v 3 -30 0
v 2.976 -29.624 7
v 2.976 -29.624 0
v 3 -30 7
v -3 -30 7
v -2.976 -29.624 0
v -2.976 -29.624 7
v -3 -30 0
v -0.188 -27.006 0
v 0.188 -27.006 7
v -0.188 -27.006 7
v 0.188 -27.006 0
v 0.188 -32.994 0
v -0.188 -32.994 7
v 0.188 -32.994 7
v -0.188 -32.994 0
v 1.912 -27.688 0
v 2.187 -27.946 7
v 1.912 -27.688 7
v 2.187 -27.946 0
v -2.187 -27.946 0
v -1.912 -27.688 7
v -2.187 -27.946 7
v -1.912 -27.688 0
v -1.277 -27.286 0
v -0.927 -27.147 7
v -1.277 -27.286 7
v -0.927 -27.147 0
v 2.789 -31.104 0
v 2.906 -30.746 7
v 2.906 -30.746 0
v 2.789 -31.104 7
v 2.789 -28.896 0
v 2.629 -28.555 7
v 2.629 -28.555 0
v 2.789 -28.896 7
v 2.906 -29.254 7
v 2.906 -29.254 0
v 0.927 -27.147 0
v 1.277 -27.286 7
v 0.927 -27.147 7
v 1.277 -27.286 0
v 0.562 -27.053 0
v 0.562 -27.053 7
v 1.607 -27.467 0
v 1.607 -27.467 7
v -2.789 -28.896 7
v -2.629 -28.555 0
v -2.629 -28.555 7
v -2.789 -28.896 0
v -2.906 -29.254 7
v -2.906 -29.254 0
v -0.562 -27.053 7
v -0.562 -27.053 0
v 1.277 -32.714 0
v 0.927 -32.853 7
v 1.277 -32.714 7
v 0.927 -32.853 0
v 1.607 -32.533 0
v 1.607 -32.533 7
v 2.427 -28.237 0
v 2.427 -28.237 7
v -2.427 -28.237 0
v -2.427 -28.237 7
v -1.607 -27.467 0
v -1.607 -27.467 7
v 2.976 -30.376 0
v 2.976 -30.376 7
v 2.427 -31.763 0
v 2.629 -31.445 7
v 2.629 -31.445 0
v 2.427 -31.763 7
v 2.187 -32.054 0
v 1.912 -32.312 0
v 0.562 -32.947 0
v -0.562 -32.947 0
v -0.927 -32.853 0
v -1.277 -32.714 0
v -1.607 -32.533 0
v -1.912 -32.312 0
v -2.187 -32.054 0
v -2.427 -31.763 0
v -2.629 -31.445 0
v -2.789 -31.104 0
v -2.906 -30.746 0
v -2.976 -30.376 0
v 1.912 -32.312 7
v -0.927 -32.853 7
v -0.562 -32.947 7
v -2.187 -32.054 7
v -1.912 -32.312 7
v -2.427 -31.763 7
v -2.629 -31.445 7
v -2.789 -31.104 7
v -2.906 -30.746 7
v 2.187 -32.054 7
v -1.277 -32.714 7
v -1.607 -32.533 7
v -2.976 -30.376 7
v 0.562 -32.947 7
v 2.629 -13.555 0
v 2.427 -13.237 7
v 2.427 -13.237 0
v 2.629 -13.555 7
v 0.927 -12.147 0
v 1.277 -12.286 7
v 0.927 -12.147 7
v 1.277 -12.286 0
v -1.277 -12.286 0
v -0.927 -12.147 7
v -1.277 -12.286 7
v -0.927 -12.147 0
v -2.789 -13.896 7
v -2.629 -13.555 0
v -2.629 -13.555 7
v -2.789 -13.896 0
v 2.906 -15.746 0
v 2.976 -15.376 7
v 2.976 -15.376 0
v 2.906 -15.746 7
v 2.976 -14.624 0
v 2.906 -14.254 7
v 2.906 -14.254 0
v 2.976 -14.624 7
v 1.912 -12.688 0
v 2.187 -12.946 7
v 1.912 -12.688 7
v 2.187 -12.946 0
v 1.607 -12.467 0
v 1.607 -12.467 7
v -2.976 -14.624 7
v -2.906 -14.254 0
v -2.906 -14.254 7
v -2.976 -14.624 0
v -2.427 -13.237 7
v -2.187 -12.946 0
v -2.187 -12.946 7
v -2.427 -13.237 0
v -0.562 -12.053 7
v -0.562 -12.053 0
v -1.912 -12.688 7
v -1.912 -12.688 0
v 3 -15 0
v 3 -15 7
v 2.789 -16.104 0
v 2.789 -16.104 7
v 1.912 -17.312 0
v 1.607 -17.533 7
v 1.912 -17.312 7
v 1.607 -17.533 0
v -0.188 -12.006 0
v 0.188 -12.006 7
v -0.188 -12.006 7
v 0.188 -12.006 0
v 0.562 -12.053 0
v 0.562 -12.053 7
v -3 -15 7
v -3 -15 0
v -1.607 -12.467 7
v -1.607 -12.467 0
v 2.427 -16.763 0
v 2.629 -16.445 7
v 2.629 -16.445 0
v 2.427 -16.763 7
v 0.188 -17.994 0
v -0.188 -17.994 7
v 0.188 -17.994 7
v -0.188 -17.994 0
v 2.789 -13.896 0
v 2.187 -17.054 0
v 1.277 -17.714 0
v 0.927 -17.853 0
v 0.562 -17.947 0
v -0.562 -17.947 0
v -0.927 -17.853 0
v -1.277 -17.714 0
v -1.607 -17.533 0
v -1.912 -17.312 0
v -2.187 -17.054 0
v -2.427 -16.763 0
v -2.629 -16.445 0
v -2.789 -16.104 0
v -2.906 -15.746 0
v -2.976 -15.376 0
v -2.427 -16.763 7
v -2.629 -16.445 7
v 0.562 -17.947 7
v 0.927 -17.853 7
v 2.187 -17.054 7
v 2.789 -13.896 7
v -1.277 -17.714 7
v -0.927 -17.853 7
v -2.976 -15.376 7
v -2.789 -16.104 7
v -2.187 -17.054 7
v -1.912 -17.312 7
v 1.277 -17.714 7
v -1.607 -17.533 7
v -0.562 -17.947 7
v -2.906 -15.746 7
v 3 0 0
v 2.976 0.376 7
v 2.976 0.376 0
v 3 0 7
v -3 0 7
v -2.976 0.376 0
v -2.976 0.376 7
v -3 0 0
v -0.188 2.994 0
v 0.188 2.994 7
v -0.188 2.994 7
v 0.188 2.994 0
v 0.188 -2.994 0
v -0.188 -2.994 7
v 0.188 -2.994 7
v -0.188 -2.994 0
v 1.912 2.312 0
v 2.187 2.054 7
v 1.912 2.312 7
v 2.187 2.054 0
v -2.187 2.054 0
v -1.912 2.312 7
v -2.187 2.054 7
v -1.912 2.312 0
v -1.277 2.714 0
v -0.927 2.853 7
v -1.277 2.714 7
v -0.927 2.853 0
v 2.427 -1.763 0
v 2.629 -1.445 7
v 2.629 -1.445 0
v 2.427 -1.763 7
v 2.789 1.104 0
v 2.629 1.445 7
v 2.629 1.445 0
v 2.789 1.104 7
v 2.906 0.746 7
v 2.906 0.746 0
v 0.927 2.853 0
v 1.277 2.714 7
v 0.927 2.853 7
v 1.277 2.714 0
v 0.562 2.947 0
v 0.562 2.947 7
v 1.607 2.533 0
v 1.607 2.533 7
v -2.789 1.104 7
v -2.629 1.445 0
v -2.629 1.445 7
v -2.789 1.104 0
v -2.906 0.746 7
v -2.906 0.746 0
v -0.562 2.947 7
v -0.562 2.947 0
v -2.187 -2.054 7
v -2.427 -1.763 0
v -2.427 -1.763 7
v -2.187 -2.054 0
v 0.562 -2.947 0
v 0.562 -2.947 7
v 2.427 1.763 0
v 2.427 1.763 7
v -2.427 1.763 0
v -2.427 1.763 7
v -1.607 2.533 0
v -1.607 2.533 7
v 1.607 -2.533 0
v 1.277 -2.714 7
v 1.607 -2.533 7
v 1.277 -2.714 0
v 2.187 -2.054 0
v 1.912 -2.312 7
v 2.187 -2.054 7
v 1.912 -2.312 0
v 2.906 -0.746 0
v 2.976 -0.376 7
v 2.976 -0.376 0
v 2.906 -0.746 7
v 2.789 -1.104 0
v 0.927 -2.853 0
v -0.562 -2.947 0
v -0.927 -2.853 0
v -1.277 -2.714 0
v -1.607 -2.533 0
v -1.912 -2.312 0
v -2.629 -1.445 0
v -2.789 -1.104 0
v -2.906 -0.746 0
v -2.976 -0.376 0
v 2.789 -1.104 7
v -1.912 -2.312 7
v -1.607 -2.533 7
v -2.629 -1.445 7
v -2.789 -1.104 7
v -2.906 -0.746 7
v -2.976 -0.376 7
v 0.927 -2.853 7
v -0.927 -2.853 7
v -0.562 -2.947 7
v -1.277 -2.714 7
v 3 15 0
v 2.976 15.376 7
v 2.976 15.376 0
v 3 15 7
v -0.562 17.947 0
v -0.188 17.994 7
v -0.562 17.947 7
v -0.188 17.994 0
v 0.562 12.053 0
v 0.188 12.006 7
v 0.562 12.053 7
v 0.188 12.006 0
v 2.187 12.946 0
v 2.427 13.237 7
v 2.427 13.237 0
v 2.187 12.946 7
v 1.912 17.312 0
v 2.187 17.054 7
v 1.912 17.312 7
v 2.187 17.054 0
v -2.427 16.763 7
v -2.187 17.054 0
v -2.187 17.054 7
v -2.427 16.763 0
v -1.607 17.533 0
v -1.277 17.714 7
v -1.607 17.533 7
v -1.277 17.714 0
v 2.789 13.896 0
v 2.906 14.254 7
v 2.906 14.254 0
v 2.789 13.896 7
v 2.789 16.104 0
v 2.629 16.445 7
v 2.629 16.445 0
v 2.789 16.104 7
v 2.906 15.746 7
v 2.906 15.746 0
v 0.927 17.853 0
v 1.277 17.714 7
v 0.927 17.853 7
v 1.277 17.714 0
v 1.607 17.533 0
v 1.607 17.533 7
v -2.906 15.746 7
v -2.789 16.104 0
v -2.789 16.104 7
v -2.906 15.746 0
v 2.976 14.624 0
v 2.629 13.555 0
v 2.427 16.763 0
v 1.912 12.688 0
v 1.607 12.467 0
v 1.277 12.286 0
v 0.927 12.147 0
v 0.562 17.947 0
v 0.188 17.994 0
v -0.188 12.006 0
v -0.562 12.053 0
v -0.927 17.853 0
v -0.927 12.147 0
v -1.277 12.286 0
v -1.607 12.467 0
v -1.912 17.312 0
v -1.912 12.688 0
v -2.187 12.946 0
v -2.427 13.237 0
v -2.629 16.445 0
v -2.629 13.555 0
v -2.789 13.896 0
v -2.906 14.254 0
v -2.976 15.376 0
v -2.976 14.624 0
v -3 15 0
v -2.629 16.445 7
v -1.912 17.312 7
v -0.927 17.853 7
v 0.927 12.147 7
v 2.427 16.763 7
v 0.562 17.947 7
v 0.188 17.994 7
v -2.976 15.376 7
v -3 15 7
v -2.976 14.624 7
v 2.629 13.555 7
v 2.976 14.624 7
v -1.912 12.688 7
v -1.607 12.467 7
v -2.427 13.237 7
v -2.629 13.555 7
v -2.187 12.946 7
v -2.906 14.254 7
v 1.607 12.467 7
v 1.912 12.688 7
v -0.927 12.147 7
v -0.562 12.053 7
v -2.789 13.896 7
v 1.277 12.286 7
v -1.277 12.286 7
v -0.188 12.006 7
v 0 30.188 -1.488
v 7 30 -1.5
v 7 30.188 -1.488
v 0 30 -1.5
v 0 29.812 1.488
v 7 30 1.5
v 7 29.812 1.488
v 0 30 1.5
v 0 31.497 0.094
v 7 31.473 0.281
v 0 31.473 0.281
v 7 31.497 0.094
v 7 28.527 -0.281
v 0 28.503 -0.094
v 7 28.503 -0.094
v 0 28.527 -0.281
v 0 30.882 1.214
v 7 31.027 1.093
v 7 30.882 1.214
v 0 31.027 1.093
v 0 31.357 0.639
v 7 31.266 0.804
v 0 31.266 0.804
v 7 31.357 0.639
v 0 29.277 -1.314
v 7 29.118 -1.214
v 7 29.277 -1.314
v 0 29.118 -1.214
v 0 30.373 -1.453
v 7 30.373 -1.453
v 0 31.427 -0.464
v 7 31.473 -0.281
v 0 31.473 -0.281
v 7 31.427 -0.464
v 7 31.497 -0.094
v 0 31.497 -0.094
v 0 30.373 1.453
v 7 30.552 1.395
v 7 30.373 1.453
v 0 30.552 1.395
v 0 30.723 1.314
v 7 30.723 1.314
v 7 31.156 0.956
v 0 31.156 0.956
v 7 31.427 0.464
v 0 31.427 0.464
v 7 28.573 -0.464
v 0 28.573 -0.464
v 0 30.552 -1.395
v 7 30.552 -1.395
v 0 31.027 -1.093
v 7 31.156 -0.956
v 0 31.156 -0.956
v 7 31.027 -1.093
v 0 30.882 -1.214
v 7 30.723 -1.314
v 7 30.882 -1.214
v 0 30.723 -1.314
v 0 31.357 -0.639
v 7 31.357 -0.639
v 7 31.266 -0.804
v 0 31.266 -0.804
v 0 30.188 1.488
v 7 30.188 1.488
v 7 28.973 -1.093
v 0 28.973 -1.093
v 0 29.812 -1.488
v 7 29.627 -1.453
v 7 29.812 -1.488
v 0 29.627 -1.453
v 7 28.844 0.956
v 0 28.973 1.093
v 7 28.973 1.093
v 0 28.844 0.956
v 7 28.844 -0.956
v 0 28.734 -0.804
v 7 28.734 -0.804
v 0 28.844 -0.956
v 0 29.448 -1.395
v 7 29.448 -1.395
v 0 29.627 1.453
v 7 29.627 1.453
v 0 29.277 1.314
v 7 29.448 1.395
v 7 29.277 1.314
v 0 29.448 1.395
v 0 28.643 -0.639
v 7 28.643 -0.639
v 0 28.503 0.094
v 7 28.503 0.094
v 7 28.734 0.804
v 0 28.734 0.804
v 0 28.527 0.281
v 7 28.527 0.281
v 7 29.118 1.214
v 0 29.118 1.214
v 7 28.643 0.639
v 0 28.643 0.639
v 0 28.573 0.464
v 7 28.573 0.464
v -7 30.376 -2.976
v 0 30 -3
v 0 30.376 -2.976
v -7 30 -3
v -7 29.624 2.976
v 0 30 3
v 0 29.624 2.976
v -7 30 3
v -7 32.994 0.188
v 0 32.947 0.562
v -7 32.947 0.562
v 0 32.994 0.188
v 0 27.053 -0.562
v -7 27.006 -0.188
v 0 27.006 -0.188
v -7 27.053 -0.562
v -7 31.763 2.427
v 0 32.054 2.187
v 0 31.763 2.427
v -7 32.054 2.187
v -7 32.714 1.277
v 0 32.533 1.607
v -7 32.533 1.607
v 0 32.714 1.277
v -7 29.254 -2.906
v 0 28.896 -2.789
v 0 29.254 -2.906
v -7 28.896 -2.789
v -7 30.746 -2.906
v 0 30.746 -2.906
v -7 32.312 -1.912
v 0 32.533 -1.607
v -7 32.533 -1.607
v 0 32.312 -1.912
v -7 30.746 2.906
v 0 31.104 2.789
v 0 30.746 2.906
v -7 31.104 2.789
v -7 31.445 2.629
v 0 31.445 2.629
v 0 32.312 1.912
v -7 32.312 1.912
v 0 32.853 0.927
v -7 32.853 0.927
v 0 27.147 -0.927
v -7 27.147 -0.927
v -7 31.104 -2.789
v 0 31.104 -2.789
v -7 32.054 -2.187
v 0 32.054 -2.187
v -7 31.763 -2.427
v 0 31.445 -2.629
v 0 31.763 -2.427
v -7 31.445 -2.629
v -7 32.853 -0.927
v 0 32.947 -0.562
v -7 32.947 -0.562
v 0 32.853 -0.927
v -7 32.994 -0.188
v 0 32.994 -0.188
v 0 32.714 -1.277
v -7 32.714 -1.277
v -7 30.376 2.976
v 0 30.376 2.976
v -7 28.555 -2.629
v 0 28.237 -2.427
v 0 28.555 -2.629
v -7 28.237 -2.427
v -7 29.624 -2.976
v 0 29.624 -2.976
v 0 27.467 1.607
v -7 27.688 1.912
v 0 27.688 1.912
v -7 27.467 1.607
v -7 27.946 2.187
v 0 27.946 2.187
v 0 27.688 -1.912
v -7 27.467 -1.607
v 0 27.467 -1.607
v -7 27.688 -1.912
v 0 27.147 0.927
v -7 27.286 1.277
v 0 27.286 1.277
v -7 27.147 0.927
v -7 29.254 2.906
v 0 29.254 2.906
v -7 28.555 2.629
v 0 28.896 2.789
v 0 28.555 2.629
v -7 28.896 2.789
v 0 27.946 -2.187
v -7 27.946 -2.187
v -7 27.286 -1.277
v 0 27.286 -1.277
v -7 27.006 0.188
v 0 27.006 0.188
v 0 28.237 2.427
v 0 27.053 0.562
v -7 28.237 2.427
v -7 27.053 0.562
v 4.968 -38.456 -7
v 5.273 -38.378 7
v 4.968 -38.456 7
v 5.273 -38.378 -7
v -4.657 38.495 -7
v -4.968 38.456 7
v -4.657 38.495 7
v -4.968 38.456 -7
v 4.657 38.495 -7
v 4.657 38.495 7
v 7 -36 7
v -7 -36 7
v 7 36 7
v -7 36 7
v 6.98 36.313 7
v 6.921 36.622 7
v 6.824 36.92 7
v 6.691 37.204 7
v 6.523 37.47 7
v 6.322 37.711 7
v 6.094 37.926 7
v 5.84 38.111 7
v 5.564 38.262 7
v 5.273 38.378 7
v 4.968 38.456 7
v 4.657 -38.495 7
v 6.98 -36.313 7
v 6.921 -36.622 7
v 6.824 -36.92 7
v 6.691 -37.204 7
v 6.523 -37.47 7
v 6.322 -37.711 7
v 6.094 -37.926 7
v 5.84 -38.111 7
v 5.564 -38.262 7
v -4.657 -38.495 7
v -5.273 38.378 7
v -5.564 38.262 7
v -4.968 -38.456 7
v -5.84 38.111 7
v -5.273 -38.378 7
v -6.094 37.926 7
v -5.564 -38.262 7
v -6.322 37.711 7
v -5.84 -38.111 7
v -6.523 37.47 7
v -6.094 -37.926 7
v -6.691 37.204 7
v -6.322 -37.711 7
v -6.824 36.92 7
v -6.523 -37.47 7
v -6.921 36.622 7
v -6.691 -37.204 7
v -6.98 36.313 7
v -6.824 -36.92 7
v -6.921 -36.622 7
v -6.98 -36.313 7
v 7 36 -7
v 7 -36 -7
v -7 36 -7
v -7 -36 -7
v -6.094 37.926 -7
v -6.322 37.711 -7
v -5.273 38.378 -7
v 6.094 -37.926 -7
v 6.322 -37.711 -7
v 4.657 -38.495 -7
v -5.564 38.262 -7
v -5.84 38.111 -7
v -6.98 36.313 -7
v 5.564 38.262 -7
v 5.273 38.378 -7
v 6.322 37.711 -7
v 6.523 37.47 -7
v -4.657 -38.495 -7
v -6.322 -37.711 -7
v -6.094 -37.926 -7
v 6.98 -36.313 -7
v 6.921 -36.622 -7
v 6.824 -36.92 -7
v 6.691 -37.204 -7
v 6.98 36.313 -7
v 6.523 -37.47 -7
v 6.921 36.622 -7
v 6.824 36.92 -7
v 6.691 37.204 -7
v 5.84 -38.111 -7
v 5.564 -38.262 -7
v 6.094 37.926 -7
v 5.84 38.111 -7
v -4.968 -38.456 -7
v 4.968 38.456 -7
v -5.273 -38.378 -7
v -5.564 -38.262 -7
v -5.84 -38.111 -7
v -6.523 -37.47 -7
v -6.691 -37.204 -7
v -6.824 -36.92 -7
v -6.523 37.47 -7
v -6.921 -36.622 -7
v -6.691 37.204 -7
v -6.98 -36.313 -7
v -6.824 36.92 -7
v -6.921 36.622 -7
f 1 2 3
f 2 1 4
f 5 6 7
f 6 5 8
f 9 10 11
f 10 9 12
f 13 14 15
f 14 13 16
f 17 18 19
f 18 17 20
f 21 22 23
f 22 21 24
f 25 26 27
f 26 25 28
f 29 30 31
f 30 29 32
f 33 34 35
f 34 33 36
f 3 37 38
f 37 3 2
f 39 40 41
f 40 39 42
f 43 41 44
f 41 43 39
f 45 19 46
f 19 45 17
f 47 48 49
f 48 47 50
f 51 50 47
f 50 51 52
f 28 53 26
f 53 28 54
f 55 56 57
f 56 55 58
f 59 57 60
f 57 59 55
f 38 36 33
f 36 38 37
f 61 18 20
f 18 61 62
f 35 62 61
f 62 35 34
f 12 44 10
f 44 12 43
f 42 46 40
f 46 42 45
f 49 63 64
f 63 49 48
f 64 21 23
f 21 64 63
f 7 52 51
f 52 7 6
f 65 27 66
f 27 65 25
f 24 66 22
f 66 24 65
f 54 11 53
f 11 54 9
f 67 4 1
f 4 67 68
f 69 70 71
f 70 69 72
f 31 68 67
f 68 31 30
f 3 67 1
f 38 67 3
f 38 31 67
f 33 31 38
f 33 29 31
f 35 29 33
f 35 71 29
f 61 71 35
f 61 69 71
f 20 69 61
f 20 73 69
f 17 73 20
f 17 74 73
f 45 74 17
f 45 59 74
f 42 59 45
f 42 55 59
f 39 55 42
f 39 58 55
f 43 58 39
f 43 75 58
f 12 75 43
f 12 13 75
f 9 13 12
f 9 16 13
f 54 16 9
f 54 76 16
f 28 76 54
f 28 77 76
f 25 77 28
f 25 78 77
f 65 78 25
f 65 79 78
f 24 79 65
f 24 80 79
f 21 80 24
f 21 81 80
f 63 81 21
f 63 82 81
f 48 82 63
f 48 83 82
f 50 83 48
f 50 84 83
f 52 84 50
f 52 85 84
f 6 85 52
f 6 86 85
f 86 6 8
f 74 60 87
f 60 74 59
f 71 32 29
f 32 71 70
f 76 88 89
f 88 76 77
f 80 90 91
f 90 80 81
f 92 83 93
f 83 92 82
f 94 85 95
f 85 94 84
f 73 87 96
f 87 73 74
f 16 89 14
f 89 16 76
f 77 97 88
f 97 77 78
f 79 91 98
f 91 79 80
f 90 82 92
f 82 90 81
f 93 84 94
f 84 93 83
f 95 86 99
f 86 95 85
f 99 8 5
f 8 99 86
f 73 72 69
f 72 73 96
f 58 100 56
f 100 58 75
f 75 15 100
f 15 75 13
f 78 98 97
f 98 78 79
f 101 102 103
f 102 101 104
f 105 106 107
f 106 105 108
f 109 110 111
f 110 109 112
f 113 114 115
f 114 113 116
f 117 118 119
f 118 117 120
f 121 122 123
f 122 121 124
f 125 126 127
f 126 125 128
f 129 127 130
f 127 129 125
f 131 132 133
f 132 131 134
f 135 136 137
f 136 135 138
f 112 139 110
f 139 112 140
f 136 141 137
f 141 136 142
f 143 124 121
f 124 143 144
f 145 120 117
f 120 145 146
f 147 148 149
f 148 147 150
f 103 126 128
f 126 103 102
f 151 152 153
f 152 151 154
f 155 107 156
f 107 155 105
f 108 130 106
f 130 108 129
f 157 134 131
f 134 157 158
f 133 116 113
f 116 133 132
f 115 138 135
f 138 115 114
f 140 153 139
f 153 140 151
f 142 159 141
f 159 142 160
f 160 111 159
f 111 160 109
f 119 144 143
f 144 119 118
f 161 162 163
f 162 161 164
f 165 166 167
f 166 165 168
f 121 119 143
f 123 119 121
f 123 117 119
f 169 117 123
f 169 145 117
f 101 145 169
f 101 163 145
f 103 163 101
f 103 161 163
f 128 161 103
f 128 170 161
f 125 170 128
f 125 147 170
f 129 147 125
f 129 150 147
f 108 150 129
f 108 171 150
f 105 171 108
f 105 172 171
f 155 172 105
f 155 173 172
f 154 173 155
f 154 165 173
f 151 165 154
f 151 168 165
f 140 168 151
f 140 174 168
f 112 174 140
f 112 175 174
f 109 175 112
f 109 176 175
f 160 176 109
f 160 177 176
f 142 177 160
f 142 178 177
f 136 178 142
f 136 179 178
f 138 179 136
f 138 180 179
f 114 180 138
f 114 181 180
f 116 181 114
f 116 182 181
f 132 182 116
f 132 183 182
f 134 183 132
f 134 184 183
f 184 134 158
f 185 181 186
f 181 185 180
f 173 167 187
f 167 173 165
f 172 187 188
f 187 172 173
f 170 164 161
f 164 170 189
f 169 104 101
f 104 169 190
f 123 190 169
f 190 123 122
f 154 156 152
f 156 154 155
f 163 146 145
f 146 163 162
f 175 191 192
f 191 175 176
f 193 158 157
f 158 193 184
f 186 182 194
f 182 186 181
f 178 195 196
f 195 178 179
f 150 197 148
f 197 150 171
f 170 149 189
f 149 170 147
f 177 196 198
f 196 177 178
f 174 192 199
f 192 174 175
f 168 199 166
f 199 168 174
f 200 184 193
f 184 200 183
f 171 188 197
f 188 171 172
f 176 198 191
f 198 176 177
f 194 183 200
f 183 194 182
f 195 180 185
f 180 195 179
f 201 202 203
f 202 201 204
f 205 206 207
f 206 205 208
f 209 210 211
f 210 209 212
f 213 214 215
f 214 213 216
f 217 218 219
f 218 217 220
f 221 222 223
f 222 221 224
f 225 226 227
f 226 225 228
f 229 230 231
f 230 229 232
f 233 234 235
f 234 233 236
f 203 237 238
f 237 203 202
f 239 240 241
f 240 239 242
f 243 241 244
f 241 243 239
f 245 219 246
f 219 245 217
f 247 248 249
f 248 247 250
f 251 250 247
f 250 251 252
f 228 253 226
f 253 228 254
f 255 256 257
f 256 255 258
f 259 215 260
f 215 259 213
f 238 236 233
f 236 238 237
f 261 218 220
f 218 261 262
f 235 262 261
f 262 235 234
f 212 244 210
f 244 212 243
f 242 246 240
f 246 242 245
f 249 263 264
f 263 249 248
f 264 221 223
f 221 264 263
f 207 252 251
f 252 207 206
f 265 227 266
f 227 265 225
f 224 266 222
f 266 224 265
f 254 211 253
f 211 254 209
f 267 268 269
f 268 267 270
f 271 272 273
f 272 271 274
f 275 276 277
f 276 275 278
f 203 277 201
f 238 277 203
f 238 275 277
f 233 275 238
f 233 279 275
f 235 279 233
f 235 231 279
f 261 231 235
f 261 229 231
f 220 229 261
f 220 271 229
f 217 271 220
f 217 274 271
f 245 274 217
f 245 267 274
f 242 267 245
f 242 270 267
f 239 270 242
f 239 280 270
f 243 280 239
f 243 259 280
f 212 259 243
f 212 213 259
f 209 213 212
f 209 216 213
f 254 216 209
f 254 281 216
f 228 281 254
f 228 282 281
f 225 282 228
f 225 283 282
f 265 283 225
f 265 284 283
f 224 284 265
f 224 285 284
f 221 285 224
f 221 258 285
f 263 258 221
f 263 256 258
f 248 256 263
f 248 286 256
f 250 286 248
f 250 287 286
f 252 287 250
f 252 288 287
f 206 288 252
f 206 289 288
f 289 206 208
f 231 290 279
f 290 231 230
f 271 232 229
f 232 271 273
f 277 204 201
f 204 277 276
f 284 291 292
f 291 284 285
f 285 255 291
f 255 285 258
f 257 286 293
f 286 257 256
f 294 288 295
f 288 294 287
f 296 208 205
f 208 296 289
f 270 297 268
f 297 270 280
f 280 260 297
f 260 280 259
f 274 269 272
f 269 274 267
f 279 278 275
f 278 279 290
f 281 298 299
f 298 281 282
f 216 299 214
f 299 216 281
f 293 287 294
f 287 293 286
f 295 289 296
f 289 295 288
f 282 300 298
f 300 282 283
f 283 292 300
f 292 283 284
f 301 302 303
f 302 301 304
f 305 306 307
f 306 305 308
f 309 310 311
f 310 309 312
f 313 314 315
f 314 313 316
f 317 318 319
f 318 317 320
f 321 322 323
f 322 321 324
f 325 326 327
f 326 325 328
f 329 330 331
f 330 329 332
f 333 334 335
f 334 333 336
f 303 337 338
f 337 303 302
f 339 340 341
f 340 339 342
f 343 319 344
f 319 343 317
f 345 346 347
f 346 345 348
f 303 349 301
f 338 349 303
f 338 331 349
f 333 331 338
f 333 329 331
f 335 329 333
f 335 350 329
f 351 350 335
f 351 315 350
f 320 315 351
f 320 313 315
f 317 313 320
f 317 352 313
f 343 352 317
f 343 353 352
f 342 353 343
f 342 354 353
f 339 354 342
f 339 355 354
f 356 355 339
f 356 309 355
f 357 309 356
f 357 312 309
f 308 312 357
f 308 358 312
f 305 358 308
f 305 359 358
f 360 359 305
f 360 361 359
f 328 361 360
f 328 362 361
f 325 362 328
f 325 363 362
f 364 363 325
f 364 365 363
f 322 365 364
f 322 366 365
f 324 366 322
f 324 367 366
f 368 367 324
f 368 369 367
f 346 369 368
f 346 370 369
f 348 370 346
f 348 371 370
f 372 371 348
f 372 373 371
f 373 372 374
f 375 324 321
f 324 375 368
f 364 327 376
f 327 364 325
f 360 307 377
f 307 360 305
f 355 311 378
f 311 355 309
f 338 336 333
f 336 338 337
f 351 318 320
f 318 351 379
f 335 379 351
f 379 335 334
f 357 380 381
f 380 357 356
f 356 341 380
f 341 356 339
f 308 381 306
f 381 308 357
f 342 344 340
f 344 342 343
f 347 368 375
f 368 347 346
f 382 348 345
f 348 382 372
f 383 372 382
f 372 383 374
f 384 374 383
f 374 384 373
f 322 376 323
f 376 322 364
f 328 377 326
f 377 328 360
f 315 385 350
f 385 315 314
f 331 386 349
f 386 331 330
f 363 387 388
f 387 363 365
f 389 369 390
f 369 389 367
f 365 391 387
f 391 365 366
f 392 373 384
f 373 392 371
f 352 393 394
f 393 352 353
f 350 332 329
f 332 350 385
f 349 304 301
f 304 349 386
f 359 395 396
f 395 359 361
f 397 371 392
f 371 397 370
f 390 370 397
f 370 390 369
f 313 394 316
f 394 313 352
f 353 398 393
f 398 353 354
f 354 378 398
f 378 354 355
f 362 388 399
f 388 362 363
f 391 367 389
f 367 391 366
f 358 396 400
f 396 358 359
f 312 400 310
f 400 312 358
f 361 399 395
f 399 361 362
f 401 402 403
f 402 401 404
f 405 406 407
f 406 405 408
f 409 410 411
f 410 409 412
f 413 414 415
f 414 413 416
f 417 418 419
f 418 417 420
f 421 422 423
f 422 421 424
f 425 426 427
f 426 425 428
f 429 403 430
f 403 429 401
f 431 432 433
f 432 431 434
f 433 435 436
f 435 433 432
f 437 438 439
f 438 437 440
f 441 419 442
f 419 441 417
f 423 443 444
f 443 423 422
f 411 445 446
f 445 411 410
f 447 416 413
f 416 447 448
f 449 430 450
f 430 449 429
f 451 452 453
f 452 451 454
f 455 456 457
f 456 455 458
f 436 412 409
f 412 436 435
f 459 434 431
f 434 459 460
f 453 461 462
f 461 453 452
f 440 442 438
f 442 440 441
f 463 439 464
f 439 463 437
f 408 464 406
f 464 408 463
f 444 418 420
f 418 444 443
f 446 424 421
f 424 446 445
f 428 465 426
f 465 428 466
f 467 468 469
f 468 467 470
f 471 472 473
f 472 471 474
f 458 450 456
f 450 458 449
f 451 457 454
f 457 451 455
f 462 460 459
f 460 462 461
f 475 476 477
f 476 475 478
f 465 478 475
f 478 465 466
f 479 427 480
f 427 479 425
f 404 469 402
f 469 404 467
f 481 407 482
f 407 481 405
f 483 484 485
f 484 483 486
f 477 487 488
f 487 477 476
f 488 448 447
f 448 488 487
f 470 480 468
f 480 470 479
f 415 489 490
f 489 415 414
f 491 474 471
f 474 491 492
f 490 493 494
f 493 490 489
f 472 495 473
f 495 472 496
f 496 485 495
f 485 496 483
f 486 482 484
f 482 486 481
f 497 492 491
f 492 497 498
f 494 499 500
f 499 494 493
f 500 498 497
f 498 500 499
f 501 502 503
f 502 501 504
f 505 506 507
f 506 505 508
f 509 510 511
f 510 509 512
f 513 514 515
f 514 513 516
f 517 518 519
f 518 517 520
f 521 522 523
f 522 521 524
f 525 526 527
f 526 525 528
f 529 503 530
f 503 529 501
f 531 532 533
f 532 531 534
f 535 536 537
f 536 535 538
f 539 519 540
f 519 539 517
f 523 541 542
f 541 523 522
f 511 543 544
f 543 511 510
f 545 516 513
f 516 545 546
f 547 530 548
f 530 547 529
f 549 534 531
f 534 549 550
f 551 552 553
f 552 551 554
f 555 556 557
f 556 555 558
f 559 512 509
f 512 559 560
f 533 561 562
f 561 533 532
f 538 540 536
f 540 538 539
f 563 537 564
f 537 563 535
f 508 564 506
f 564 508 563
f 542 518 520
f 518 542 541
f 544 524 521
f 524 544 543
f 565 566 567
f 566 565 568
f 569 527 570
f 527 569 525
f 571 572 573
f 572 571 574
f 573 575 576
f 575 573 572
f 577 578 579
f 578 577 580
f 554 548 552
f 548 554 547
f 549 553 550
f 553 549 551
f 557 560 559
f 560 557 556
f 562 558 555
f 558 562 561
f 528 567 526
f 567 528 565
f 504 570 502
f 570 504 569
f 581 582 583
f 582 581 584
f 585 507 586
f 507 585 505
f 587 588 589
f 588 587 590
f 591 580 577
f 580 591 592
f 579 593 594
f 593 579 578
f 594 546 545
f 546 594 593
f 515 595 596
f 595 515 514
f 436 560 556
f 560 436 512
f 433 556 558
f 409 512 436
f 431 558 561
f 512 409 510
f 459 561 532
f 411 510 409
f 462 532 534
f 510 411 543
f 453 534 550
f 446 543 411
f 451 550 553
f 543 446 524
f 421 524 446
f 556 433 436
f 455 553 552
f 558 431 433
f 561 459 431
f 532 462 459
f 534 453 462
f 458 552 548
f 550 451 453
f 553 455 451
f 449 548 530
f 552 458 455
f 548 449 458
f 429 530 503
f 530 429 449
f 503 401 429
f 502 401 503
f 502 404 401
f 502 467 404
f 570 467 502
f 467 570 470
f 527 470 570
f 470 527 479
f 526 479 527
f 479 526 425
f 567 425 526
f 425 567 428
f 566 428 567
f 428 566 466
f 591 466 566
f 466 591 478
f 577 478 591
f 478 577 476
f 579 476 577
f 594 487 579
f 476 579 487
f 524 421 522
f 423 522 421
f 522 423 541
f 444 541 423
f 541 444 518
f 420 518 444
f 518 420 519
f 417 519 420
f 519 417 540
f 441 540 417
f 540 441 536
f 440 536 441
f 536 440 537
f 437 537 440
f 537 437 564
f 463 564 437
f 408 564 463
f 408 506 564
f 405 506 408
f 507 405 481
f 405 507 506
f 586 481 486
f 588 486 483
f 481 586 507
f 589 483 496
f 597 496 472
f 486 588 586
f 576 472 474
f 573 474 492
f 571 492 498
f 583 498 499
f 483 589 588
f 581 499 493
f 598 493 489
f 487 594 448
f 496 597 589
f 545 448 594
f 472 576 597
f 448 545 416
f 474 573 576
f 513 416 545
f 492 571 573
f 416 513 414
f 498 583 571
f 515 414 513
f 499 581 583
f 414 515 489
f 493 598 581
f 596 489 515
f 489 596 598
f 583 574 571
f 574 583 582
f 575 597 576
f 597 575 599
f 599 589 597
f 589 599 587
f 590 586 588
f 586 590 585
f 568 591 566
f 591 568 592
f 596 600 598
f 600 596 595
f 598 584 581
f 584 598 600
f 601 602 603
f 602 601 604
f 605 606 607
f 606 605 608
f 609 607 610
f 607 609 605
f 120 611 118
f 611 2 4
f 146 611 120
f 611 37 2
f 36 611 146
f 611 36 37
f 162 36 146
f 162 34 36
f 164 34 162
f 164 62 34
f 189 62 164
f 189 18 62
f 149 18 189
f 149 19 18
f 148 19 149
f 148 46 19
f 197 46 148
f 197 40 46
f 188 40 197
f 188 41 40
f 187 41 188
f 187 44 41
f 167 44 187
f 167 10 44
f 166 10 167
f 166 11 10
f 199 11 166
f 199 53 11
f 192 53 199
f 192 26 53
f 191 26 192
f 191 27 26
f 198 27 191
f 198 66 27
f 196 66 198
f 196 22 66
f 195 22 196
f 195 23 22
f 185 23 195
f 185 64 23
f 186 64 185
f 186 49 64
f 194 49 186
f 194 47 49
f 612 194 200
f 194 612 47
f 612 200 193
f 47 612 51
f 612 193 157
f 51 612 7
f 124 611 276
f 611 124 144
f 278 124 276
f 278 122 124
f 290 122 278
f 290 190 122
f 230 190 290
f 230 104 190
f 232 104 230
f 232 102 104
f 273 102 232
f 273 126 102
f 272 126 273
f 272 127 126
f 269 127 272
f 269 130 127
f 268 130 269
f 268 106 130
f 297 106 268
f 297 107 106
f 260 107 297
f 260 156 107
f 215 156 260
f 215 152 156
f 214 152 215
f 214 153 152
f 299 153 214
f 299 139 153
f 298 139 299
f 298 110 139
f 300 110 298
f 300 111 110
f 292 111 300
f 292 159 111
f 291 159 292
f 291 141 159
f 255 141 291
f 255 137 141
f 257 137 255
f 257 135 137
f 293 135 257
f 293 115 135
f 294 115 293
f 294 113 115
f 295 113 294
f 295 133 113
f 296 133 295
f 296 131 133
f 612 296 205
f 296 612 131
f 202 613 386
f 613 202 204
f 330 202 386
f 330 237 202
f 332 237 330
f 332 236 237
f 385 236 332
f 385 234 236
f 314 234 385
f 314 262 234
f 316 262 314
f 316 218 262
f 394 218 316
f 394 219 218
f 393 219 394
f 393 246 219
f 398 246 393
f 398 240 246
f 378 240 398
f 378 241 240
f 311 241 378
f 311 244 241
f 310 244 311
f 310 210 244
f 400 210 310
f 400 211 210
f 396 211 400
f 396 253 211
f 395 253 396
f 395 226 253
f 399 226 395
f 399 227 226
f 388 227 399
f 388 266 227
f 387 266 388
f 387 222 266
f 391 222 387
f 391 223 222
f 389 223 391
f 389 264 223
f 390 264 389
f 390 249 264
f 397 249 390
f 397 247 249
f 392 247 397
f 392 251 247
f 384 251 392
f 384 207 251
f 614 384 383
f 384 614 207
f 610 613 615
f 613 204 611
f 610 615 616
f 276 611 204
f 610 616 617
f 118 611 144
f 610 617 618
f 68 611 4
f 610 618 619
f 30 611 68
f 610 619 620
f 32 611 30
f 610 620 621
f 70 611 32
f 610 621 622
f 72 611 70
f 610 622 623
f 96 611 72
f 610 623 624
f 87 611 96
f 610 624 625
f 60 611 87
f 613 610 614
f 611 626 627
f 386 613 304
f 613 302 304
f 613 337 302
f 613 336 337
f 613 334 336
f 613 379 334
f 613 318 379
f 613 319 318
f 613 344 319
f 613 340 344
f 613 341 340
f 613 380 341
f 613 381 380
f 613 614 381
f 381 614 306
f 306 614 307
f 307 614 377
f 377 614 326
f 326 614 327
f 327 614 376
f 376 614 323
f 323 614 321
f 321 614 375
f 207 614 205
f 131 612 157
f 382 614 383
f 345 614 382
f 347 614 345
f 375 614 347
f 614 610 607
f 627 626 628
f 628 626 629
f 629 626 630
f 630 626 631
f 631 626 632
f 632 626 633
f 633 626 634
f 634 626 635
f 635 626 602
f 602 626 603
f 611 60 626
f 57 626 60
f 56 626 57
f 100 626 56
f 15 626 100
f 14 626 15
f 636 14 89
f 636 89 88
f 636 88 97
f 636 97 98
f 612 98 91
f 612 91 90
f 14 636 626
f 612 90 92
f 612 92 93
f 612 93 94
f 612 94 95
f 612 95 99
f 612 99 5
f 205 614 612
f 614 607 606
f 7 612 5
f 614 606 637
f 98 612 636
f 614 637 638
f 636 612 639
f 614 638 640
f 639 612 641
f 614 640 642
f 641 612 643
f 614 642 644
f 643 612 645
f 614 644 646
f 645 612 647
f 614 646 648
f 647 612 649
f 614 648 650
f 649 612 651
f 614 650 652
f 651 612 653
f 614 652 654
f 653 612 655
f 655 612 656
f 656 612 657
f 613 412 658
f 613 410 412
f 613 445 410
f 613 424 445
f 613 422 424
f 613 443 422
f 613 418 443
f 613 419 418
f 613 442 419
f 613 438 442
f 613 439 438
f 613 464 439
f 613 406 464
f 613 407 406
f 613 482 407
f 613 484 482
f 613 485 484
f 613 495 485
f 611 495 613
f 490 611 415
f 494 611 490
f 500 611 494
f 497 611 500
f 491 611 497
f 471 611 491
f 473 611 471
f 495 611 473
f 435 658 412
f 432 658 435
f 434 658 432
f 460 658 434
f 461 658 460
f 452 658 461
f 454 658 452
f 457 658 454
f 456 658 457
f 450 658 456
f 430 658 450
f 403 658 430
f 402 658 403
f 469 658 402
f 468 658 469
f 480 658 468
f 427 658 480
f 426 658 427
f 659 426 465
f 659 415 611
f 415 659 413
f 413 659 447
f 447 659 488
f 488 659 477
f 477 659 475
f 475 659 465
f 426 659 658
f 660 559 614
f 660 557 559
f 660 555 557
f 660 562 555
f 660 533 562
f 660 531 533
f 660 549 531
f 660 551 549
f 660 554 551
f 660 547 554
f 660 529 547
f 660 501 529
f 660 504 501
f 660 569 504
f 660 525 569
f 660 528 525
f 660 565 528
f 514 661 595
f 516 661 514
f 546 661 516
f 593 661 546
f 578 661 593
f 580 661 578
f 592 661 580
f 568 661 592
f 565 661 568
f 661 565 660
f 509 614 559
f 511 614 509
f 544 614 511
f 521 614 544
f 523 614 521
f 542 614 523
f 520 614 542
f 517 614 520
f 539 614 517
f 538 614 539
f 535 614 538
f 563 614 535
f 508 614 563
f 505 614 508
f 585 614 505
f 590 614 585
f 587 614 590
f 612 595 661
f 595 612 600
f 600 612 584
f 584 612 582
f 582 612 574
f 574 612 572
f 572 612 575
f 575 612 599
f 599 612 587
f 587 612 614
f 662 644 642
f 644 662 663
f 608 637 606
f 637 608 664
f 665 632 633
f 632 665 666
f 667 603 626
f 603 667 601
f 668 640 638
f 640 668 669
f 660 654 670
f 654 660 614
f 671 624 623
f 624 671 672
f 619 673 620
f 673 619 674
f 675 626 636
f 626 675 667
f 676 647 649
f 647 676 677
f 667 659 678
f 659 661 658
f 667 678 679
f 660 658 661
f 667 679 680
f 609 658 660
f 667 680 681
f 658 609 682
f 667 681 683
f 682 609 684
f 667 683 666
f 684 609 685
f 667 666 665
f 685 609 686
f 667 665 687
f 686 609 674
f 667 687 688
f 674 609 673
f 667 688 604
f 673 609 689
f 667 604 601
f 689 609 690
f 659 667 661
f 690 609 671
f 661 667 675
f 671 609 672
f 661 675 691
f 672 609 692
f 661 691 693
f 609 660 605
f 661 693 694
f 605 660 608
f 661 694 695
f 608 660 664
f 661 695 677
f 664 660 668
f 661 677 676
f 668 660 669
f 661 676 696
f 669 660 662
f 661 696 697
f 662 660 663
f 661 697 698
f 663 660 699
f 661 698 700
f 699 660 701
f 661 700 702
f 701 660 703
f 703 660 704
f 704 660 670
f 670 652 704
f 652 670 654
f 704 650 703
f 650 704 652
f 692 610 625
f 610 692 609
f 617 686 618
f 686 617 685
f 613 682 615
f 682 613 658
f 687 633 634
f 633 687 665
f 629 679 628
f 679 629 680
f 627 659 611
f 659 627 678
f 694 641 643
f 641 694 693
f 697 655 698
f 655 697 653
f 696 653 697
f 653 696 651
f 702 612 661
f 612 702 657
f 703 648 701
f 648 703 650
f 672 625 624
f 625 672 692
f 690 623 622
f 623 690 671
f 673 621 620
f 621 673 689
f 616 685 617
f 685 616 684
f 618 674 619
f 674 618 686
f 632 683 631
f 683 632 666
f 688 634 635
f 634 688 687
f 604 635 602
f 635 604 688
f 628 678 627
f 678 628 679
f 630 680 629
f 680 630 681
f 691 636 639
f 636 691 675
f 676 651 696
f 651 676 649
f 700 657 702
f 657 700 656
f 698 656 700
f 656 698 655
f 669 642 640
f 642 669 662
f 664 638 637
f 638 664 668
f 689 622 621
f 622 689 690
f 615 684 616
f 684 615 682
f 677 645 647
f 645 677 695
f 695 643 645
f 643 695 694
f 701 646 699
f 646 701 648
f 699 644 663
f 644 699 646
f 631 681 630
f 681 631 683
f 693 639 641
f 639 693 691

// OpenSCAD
$fn = 50;


difference() {
	union() {
		translate(v = [0, 0, -7.0000000000]) {
			hull() {
				translate(v = [-4.5000000000, 36.0000000000, 0]) {
					cylinder(h = 14, r = 2.5000000000);
				}
				translate(v = [4.5000000000, 36.0000000000, 0]) {
					cylinder(h = 14, r = 2.5000000000);
				}
				translate(v = [-4.5000000000, -36.0000000000, 0]) {
					cylinder(h = 14, r = 2.5000000000);
				}
				translate(v = [4.5000000000, -36.0000000000, 0]) {
					cylinder(h = 14, r = 2.5000000000);
				}
			}
		}
	}
	union() {
		translate(v = [0.0000000000, -30.0000000000, 0]) {
			cylinder(h = 100, r = 3.0000000000);
		}
		translate(v = [0.0000000000, -15.0000000000, 0]) {
			cylinder(h = 100, r = 3.0000000000);
		}
		cylinder(h = 100, r = 3.0000000000);
		translate(v = [0.0000000000, 15.0000000000, 0]) {
			cylinder(h = 100, r = 3.0000000000);
		}
		translate(v = [-50, 30, 0]) {
			rotate(a = [0, 90, 0]) {
				cylinder(h = 100, r = 1.5000000000);
			}
		}
		translate(v = [-100, 30, 0]) {
			rotate(a = [0, 90, 0]) {
				cylinder(h = 100, r = 3.0000000000);
			}
		}
	}
}
